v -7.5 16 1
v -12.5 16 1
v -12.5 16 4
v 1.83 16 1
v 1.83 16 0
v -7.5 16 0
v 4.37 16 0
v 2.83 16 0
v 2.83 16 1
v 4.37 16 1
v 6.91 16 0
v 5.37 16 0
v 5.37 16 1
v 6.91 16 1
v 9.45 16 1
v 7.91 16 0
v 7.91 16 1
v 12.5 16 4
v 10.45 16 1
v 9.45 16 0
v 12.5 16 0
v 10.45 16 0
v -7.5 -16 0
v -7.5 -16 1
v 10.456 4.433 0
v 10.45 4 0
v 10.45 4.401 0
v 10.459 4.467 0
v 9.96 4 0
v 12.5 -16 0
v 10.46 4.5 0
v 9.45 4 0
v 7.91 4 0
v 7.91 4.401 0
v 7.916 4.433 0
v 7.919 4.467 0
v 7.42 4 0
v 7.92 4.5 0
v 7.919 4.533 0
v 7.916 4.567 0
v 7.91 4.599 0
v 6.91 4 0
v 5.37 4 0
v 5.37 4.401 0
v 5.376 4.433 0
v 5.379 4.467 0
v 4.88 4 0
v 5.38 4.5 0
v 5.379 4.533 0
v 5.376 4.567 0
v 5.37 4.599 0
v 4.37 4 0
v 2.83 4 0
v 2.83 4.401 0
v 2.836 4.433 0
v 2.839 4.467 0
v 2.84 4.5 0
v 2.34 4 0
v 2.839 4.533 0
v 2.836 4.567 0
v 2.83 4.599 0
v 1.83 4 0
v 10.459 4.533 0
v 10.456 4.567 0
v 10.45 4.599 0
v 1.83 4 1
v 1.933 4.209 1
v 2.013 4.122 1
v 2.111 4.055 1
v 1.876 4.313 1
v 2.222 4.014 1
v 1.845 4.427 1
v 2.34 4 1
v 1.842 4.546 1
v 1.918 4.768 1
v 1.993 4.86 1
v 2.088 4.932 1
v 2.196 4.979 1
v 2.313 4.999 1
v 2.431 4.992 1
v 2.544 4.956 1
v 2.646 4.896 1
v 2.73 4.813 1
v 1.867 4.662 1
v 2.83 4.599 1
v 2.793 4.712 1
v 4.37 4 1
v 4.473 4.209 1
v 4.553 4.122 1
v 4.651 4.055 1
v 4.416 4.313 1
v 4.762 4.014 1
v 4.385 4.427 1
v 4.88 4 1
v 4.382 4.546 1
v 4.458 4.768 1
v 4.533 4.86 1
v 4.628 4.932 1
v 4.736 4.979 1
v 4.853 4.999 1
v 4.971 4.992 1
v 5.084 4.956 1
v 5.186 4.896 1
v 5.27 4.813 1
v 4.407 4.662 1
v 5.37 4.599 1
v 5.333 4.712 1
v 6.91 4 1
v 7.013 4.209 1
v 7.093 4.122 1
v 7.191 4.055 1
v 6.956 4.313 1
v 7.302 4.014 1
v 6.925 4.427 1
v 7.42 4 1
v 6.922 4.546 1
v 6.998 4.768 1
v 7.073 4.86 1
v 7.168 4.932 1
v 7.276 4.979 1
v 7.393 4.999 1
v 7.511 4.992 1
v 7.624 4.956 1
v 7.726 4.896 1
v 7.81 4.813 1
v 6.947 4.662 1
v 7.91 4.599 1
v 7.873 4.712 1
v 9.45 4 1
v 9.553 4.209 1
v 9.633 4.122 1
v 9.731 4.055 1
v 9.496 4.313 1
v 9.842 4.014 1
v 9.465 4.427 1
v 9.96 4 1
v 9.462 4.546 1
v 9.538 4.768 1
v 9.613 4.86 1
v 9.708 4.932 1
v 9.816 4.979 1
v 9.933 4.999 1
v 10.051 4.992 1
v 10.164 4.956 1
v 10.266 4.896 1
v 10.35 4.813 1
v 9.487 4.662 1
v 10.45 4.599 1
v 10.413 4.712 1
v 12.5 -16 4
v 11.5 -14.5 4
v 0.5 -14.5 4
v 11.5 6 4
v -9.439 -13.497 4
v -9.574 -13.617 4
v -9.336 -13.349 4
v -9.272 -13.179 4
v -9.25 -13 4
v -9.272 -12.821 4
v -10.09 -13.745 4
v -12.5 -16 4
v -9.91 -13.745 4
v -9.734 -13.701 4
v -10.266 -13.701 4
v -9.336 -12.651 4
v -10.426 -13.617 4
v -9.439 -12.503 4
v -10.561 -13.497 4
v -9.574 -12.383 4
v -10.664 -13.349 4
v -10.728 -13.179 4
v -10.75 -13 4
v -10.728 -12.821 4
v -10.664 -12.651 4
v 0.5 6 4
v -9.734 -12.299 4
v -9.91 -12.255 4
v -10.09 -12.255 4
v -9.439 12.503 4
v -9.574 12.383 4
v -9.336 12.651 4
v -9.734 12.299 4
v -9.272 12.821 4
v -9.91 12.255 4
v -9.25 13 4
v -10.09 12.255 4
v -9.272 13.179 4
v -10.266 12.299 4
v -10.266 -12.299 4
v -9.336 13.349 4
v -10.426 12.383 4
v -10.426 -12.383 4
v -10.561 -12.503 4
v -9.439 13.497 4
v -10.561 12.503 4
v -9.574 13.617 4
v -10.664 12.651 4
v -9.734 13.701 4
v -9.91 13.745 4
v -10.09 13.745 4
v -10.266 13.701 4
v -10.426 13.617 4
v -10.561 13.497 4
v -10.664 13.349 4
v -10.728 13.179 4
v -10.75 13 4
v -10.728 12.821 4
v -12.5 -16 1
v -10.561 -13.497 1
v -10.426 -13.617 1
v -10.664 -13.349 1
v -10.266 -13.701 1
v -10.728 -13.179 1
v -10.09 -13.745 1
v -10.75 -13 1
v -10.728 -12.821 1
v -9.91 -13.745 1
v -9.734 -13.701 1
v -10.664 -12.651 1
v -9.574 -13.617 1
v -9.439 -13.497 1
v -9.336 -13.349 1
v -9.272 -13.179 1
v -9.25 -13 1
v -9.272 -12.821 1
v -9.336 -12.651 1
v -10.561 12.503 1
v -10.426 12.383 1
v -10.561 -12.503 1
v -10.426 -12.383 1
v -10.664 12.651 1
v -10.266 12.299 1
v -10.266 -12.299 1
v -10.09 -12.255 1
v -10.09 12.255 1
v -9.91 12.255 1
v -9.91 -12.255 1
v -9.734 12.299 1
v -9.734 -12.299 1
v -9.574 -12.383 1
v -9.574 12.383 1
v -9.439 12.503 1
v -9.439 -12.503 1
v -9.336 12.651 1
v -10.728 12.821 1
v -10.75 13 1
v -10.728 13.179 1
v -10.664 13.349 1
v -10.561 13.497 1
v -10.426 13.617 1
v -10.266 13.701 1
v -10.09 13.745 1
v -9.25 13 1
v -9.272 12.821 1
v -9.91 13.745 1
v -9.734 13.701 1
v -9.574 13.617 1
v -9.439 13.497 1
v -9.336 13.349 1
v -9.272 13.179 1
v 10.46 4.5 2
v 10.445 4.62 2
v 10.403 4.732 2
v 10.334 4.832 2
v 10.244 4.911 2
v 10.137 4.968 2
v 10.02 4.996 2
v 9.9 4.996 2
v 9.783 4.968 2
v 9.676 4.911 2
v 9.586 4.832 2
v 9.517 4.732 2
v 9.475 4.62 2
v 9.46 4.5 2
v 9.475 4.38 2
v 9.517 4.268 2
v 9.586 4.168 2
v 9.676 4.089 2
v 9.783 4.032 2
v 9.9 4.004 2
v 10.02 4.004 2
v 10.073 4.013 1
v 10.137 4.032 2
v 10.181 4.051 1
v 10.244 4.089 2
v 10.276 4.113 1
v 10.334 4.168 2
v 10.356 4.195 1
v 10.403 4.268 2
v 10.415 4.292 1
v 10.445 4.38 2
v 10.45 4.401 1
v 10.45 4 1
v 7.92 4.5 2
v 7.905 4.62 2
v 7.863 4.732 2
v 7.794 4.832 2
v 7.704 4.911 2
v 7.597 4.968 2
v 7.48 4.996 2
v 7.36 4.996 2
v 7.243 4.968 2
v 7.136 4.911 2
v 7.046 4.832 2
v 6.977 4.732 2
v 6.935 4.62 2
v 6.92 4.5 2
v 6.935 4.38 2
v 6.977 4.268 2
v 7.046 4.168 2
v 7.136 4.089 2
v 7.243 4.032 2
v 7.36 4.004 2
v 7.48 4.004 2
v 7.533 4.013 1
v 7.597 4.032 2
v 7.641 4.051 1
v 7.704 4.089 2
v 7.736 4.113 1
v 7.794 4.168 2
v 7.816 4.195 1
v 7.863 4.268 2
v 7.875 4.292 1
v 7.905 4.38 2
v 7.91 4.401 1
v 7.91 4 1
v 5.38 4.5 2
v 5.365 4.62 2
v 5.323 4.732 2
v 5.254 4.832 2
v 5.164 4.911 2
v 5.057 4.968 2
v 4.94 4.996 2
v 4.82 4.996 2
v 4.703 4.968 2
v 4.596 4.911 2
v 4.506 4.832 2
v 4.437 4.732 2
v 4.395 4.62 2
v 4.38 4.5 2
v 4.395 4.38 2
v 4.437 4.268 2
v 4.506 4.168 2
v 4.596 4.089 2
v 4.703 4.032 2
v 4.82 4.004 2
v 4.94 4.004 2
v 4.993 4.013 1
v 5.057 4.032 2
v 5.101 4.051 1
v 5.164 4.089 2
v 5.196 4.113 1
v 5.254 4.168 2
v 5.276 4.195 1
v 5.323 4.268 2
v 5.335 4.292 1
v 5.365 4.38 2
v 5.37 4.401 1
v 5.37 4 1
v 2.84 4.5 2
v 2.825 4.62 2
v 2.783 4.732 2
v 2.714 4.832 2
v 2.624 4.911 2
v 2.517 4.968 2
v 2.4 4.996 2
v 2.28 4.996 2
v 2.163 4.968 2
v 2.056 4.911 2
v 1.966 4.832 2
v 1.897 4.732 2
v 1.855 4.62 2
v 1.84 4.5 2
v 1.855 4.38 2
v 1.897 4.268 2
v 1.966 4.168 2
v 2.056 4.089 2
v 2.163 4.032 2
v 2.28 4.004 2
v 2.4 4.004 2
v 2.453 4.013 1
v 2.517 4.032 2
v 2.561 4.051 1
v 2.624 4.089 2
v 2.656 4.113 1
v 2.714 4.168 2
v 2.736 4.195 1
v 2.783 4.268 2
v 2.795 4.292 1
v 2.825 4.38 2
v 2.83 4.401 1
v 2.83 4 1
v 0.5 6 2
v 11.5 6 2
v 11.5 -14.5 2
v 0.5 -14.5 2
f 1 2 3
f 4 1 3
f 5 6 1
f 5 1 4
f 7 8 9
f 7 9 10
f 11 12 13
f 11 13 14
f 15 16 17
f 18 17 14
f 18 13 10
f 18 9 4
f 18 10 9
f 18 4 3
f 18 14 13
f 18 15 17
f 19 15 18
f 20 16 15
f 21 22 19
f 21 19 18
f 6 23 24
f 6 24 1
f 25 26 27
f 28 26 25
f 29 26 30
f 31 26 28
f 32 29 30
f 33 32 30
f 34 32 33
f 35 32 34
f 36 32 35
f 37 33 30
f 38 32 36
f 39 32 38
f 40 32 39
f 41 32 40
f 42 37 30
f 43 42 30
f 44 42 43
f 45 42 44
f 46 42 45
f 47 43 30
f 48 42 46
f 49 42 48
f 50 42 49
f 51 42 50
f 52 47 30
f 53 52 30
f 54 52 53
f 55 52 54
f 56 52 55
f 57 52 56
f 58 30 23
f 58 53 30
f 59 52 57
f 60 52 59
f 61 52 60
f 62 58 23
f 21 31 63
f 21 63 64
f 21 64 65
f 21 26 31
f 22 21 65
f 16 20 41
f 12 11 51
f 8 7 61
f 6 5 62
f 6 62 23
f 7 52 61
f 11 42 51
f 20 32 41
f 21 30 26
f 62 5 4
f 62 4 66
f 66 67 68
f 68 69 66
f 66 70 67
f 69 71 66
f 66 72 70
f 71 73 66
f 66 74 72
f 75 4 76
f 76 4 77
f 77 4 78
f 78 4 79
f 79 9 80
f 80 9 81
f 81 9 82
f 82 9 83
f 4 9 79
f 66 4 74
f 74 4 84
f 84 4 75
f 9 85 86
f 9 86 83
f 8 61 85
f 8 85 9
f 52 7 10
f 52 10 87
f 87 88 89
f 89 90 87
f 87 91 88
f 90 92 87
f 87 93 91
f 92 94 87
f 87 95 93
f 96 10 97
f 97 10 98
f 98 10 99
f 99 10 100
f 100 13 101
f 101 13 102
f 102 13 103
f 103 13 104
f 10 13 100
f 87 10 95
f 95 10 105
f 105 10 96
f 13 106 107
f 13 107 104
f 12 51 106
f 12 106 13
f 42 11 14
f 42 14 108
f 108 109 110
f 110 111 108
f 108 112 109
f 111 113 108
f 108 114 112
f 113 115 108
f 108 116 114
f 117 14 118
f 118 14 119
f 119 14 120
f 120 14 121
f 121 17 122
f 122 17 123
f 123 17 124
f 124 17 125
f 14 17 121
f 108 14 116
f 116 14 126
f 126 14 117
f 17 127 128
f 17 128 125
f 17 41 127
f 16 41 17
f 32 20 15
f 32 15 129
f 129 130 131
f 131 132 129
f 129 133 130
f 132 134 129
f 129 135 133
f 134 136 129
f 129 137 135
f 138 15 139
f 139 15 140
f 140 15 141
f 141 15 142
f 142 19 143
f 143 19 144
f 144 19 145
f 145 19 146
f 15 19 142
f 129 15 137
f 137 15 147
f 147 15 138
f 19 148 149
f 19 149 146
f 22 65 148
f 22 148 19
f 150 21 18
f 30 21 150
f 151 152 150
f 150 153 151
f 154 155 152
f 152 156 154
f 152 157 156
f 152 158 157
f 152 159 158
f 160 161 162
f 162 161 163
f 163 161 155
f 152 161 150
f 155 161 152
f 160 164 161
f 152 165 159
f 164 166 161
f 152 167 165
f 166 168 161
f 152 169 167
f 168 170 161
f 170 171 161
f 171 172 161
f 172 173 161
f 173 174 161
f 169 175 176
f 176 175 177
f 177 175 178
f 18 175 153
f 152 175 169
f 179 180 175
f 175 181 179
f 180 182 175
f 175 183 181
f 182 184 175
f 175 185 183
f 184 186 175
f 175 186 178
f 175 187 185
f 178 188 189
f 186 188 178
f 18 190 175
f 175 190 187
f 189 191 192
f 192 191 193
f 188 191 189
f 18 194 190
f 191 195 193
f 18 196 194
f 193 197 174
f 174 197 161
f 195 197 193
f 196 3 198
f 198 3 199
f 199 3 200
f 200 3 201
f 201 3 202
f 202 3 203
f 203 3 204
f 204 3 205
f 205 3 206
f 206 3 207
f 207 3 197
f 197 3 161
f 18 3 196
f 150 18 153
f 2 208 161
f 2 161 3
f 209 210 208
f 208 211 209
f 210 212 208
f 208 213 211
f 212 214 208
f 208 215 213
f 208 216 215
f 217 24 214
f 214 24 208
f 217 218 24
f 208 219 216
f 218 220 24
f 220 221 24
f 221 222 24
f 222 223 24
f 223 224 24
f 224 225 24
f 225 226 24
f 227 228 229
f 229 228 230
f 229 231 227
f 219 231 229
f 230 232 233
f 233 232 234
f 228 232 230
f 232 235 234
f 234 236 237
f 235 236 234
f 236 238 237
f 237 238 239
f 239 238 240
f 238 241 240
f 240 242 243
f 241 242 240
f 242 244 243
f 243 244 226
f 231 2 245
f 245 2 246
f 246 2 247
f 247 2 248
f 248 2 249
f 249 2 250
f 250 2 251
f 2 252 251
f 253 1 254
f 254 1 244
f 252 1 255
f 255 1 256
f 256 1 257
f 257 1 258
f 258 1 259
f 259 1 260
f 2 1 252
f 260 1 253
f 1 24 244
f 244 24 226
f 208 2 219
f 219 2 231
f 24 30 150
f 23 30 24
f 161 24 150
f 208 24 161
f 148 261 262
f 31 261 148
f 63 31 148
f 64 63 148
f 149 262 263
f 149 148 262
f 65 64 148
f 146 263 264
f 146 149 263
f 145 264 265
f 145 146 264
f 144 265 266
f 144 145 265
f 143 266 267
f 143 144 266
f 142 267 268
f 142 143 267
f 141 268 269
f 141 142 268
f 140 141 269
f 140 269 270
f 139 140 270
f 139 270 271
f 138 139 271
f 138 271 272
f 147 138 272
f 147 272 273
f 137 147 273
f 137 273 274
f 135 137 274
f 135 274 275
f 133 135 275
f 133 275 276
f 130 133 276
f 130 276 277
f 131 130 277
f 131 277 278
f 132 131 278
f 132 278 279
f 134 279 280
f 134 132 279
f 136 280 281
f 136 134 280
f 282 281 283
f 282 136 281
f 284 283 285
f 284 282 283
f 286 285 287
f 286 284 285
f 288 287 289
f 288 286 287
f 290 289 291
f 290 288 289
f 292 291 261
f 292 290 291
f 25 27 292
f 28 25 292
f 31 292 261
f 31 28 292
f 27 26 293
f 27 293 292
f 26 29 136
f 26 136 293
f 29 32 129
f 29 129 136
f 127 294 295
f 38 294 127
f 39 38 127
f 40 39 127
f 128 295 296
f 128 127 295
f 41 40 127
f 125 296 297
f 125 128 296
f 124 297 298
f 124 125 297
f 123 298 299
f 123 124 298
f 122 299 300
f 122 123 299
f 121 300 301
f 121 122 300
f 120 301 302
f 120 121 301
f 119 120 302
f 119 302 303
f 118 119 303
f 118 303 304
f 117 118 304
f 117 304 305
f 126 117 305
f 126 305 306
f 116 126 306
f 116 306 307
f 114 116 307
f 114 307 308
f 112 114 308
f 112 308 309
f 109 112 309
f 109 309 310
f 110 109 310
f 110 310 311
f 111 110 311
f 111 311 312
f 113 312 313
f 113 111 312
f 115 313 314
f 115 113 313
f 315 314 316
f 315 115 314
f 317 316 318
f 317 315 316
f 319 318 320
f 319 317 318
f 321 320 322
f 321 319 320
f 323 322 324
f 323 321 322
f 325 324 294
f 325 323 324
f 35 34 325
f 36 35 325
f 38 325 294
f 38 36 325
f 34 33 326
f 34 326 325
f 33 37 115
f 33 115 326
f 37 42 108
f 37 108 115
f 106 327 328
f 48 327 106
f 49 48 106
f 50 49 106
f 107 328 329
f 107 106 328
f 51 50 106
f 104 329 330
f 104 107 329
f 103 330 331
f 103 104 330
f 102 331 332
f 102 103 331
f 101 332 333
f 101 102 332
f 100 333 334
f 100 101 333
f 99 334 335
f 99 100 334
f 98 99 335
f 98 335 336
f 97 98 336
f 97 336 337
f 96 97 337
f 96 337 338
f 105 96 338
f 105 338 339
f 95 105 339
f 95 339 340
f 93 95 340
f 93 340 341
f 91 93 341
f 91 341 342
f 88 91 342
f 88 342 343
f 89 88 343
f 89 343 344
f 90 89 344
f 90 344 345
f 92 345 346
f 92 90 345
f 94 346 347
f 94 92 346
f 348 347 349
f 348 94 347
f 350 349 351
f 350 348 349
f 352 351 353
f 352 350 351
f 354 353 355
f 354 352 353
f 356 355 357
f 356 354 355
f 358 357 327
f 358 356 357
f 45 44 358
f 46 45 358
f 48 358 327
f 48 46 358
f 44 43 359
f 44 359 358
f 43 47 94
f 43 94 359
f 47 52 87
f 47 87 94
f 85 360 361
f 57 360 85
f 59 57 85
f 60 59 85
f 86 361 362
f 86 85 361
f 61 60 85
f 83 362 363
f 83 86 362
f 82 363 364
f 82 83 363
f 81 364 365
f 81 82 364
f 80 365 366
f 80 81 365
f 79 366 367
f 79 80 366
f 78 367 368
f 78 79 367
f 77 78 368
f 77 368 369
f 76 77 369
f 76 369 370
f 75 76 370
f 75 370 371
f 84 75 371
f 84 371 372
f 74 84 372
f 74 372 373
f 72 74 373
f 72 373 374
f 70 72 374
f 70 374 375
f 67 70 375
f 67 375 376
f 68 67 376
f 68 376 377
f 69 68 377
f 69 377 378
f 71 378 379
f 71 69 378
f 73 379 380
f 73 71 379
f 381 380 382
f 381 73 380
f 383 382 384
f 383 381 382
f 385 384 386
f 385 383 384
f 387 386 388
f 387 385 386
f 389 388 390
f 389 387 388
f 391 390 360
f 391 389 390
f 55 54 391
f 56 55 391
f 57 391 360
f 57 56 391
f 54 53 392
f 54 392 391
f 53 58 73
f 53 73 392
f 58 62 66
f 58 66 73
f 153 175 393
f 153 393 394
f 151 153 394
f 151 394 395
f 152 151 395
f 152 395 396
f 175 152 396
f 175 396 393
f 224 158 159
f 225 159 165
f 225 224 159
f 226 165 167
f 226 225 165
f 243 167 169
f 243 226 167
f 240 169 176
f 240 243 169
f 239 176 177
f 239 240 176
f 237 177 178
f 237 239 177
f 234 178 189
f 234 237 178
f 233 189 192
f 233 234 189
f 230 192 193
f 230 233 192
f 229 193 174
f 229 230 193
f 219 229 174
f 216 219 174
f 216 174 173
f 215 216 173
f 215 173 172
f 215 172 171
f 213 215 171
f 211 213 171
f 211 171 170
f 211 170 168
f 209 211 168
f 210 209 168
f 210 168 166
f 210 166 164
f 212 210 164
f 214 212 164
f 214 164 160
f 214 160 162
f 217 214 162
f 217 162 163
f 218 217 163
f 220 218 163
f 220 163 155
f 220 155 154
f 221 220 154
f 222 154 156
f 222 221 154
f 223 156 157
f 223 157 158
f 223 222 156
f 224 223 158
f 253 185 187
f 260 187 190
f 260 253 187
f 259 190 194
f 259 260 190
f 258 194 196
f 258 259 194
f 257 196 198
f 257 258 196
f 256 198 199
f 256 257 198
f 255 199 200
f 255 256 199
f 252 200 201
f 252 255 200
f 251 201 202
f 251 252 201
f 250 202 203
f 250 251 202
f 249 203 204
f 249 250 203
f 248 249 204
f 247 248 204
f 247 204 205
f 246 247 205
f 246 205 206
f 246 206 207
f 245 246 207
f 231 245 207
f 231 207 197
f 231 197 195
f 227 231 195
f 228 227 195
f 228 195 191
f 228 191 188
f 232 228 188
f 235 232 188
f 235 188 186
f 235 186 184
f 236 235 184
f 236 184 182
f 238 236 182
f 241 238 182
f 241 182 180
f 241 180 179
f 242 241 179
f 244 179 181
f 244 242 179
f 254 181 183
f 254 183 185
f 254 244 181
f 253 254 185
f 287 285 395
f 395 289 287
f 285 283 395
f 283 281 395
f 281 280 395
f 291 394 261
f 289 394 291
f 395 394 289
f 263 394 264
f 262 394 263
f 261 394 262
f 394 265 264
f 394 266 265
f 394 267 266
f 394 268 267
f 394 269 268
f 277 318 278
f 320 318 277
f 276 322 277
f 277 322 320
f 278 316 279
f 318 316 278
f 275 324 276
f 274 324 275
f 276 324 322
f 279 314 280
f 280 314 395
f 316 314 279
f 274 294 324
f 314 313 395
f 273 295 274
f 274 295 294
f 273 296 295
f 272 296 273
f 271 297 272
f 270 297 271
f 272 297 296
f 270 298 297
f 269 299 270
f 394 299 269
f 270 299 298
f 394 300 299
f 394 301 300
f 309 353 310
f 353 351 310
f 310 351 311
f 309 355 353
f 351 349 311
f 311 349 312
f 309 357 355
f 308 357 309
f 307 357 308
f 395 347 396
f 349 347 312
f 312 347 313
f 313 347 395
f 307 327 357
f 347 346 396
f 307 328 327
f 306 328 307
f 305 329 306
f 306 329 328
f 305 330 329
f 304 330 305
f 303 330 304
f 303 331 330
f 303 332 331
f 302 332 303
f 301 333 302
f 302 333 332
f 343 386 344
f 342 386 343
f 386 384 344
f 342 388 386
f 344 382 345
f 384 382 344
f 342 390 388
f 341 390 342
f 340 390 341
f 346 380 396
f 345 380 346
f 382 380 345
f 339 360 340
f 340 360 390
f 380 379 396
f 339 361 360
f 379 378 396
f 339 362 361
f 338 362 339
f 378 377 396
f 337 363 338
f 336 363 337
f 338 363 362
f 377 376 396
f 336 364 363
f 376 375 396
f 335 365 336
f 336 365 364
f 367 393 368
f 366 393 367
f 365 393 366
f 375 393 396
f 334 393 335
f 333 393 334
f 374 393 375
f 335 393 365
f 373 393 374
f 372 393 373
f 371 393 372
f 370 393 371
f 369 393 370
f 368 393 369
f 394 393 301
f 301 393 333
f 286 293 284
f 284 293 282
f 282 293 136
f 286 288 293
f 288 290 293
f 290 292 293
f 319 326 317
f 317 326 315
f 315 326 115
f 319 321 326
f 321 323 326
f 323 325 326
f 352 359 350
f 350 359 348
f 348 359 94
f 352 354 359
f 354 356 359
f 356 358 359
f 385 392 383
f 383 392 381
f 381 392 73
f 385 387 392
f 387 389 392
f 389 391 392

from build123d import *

# Parameters (mm, degrees)
SKETCH_W        = 25
SKETCH_H        = 32
SKETCH_R        = 0.75
SKETCH_R_2      = 0.5
PAD_DEPTH       = 4
SKETCH001_W     = 5
SKETCH001_H     = 32
POCKET_DEPTH    = 1
SKETCH002_W     = 11
SKETCH002_H     = 20.5
POCKET001_DEPTH = 2
SKETCH003_W     = 1
SKETCH003_H     = 12
POCKET002_DEPTH = 1


with BuildPart() as part:
    # Sketch → Pad (new body)
    with BuildSketch(Plane.XY):
        Rectangle(SKETCH_W, SKETCH_H)
        with Locations((-10, 13)):
            Circle(SKETCH_R, mode=Mode.SUBTRACT)
        with Locations((-10, -13)):
            Circle(SKETCH_R, mode=Mode.SUBTRACT)
        with Locations((2.34, 4.5)):
            Circle(SKETCH_R_2, mode=Mode.SUBTRACT)
        with Locations((4.88, 4.5)):
            Circle(SKETCH_R_2, mode=Mode.SUBTRACT)
        with Locations((7.42, 4.5)):
            Circle(SKETCH_R_2, mode=Mode.SUBTRACT)
        with Locations((9.96, 4.5)):
            Circle(SKETCH_R_2, mode=Mode.SUBTRACT)
    extrude(amount=PAD_DEPTH)

    # Sketch001 (on Face11 of Pad) → Pocket (cut)
    with BuildSketch(Plane(origin=(0, 0, 0), x_dir=(1, 0, 0), z_dir=(0, 0, -1))):
        with Locations((-10, 0)):
            Rectangle(SKETCH001_W, SKETCH001_H)
    extrude(amount=-POCKET_DEPTH, mode=Mode.SUBTRACT)

    # Sketch002 (on Face6 of Pocket) → Pocket001 (cut)
    with BuildSketch(Plane.XY.offset(4)):
        with Locations((6, -4.25)):
            Rectangle(SKETCH002_W, SKETCH002_H)
    extrude(amount=-POCKET001_DEPTH, mode=Mode.SUBTRACT)

    # Sketch003 (on Face4 of Pocket001) → Pocket002 (cut)
    with BuildSketch(Plane(origin=(0, 0, 0), x_dir=(1, 0, 0), z_dir=(0, 0, -1))):
        with Locations((2.33, -10)):
            Rectangle(SKETCH003_W, SKETCH003_H)
        with Locations((4.87, -10)):
            Rectangle(SKETCH003_W, SKETCH003_H)
        with Locations((7.41, -10)):
            Rectangle(SKETCH003_W, SKETCH003_H)
        with Locations((9.95, -10)):
            Rectangle(SKETCH003_W, SKETCH003_H)
    extrude(amount=-POCKET002_DEPTH, mode=Mode.SUBTRACT)


solid = part.part
